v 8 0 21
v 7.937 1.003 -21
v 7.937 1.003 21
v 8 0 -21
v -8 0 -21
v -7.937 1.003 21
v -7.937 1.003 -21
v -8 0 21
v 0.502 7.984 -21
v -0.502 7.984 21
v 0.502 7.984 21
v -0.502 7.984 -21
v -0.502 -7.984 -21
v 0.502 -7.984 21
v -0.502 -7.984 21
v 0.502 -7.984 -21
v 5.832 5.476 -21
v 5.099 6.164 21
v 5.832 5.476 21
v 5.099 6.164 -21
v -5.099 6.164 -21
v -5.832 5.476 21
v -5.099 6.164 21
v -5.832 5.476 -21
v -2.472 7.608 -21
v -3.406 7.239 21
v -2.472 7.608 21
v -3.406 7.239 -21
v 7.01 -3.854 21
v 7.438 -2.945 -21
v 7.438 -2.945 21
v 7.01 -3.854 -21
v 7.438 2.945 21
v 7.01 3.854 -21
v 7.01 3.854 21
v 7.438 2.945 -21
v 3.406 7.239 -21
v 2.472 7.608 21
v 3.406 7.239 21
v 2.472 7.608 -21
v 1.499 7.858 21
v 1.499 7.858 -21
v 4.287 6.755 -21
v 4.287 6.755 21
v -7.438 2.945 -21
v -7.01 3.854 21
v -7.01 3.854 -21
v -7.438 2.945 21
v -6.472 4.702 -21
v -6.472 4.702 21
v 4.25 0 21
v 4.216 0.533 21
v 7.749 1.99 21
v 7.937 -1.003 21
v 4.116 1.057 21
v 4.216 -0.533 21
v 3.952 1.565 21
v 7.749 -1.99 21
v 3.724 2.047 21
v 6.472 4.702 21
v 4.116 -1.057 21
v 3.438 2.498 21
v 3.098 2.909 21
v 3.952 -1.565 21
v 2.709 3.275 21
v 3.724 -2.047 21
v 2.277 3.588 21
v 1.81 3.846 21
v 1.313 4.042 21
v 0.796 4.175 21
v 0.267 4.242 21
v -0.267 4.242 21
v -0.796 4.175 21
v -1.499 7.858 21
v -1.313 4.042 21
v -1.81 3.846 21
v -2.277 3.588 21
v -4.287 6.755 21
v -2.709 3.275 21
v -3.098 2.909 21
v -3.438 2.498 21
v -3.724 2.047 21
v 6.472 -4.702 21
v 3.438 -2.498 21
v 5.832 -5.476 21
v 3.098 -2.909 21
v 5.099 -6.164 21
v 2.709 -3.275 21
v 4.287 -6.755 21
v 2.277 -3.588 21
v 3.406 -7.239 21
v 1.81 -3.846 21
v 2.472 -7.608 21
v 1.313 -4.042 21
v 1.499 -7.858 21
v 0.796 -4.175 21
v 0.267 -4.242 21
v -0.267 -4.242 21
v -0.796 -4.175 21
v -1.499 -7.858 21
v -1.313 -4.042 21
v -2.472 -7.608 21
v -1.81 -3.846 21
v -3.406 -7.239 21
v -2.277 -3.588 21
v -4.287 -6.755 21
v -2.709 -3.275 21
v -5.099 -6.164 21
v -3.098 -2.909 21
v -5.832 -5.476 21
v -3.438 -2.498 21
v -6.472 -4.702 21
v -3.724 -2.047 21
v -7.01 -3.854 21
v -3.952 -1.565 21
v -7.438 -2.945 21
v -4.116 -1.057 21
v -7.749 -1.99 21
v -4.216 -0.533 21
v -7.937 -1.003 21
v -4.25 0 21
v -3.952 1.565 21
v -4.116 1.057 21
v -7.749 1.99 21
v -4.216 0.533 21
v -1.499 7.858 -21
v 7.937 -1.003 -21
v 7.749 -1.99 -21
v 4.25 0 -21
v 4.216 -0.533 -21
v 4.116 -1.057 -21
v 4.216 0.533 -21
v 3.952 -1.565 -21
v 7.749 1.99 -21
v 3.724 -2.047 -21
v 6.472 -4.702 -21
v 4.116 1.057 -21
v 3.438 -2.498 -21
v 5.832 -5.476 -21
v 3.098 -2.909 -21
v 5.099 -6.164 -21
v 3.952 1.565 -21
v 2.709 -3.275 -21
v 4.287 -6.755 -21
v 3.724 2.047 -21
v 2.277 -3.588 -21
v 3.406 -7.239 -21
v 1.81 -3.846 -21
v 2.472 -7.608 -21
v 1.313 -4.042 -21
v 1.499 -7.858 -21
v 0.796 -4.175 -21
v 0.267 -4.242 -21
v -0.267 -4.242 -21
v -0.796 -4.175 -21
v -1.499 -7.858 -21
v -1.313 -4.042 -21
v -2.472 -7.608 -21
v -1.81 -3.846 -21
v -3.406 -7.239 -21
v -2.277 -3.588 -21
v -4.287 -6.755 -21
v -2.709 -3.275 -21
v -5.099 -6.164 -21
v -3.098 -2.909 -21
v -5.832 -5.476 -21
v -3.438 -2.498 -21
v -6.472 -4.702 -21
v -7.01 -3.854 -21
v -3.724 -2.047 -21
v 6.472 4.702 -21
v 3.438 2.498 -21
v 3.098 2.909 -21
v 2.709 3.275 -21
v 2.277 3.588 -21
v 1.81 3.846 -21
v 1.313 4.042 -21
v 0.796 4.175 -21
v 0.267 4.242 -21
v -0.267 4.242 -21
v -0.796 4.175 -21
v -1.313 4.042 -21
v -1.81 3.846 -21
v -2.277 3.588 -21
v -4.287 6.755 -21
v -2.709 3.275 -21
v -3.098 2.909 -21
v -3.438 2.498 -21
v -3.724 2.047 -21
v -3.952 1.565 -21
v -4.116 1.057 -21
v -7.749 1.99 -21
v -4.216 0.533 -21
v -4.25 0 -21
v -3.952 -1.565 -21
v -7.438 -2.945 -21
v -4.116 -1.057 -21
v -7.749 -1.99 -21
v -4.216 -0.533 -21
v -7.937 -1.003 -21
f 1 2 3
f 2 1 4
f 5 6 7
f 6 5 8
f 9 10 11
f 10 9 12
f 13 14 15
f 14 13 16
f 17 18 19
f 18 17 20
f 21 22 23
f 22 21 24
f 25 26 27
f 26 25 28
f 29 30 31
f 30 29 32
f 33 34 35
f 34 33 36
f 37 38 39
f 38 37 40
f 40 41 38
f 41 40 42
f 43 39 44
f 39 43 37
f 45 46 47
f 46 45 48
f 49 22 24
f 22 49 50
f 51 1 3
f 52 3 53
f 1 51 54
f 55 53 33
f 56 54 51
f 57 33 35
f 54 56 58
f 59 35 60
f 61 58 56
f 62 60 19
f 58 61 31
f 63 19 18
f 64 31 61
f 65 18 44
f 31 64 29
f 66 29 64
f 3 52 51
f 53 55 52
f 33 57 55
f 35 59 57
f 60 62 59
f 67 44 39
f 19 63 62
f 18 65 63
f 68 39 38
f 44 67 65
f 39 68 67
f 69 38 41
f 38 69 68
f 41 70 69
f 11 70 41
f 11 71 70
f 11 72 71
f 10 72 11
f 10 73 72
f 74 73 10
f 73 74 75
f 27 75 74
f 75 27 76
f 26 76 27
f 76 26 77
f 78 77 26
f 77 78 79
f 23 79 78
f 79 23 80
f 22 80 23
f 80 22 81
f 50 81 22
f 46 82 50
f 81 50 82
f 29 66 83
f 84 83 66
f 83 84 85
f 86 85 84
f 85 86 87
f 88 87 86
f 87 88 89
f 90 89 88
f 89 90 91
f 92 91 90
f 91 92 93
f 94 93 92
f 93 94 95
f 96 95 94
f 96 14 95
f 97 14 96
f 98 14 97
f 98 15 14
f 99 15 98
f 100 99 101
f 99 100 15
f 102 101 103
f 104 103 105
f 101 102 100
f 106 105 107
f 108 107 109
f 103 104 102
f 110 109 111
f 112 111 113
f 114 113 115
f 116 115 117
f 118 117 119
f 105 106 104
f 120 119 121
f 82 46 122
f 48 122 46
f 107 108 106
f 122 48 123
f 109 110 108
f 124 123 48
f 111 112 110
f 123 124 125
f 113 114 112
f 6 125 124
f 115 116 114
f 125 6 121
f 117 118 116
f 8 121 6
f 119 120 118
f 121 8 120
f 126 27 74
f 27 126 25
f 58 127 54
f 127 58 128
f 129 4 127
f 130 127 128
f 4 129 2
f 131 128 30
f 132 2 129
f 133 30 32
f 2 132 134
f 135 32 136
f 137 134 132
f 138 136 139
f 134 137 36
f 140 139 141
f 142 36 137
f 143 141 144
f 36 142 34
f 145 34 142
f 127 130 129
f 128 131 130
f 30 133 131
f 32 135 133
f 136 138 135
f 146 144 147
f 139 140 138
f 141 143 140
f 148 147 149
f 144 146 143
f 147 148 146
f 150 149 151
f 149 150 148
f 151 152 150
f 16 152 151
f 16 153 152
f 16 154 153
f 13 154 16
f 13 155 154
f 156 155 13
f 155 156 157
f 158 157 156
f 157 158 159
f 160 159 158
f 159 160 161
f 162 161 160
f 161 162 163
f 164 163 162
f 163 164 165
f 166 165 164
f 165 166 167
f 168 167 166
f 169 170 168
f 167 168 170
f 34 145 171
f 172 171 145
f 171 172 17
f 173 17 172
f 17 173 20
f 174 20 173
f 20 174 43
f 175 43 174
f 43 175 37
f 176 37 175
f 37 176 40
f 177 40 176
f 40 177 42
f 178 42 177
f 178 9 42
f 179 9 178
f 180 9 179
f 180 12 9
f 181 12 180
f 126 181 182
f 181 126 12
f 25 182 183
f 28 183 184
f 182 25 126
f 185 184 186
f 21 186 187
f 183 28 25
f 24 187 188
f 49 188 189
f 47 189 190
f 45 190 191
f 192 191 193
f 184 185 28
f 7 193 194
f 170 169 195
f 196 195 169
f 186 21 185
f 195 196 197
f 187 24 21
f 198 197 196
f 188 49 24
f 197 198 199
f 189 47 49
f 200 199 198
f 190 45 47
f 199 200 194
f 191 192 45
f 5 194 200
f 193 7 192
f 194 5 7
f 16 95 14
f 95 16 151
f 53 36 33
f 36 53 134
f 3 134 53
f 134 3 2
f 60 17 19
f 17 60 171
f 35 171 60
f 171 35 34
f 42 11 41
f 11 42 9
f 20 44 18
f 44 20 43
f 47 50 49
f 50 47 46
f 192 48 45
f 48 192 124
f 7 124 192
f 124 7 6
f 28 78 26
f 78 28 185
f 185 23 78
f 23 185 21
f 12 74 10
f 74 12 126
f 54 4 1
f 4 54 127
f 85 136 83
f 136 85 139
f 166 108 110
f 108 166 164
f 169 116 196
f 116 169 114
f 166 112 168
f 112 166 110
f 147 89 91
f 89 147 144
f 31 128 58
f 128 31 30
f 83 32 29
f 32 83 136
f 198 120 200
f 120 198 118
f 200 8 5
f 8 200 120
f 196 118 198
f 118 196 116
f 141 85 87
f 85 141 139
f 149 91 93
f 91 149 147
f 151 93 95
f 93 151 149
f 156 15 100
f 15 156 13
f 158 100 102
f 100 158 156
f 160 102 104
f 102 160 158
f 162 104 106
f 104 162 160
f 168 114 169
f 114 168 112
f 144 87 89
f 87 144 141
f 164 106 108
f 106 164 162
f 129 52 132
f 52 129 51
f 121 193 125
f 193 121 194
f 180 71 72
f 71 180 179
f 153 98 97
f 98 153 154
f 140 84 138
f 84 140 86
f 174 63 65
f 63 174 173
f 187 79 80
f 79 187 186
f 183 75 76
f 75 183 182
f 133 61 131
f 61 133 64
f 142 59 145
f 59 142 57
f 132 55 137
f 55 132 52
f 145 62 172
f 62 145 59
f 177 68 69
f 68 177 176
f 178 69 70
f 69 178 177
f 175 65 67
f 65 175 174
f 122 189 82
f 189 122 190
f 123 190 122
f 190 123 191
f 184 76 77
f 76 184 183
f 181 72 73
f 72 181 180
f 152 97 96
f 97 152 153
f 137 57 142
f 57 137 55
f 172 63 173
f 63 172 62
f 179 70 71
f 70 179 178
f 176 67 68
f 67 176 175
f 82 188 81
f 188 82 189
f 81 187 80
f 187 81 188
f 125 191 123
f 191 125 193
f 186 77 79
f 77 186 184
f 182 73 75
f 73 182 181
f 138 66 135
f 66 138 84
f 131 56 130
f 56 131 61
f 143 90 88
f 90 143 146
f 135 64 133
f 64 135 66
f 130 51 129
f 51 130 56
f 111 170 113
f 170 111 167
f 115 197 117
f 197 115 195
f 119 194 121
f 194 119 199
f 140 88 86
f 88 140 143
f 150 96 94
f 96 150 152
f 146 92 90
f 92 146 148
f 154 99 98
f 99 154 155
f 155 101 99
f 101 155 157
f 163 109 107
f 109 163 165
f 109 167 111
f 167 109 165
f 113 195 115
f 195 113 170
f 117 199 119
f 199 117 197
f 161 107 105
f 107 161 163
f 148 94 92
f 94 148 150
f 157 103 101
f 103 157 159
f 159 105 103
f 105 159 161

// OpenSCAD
$fn = 50;


difference() {
	union() {
		translate(v = [0, 0, -21.0000000000]) {
			cylinder(h = 42, r = 8.0000000000);
		}
	}
	union() {
		translate(v = [0, 0, -100.0000000000]) {
			cylinder(h = 200, r = 4.2500000000);
		}
	}
}
